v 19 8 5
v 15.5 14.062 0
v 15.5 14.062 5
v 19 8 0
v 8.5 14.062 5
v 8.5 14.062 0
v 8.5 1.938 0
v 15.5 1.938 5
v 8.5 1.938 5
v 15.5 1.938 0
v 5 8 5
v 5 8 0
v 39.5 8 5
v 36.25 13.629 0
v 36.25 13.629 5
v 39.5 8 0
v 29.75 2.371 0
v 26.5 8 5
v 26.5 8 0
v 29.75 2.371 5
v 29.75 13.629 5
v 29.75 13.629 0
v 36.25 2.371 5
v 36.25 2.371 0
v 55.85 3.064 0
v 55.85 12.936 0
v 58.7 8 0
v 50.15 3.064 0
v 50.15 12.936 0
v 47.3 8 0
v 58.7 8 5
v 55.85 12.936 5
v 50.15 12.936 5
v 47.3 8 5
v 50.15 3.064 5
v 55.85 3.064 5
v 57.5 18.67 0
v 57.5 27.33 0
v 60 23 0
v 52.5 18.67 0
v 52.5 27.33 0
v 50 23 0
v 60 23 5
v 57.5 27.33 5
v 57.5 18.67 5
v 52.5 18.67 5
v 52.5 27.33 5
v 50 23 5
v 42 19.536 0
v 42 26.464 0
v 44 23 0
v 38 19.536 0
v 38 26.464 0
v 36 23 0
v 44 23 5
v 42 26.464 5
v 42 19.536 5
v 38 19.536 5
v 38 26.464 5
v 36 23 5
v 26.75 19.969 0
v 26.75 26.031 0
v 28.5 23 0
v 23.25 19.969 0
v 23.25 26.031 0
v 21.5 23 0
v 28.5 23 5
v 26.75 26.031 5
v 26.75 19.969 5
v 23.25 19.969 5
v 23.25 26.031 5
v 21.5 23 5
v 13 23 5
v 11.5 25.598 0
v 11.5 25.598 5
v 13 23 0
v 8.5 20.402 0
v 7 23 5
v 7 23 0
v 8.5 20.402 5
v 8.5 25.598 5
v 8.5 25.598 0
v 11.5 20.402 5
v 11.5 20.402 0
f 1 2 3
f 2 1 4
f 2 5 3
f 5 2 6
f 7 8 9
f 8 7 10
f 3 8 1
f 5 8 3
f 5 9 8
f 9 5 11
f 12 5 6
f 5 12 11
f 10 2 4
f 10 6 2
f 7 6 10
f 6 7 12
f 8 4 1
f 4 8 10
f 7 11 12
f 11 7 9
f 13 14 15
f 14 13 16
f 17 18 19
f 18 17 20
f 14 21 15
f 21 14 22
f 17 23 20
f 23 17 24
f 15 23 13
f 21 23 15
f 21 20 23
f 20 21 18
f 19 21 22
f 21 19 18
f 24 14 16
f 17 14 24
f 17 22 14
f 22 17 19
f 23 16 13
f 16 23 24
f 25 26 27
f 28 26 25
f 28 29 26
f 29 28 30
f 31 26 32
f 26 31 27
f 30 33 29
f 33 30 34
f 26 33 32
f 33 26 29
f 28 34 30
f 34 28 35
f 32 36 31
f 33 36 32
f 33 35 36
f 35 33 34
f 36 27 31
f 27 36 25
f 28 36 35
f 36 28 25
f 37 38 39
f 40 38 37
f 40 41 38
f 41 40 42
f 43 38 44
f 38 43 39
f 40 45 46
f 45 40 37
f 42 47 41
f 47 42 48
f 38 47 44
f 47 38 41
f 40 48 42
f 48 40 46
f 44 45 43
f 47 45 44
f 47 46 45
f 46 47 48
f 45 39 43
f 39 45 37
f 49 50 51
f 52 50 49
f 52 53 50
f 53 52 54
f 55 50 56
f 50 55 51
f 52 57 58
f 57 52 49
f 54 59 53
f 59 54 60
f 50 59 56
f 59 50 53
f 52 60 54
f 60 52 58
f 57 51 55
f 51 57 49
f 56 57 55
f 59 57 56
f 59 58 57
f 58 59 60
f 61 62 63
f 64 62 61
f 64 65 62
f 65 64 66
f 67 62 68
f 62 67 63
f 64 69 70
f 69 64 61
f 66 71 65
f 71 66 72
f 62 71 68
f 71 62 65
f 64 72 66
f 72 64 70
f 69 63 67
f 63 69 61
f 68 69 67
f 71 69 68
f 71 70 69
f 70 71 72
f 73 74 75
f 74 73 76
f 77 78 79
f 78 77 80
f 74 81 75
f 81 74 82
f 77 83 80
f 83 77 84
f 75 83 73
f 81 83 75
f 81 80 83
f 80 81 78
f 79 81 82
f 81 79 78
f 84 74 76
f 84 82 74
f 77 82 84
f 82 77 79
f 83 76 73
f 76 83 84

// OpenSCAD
union() {
  union() {
    union() {
      union() {
        union() {
          union() {
            difference() {
              translate([12.0000000000, 8.0000066667, 2.5000000000]) {
                scale([14.0000000000, 12.1240000000, 5.0000000000]) {
                  rotate([0.0000000000, 0.0000000000, -0.0000000000]) {
                    scale([0.5, 0.577, 1]) cylinder($fn = 6, center = true);
                  }
                }
              }
              /* EMPTY */ sphere(r = 0);
            }
            difference() {
              translate([33.0000000000, 8.0000100000, 2.5000000000]) {
                scale([13.0000000000, 11.2580000000, 5.0000000000]) {
                  rotate([0.0000000000, 0.0000000000, -0.0000000000]) {
                    scale([0.5, 0.577, 1]) cylinder($fn = 6, center = true);
                  }
                }
              }
              /* EMPTY */ sphere(r = 0);
            }
          }
          difference() {
            translate([52.9999680000, 7.9999874480, 2.5000000000]) {
              scale([11.4000000000, 9.8720000000, 5.0000000000]) {
                rotate([0.0000000000, 0.0000000000, -0.0000000000]) {
                  scale([0.5, 0.577, 1]) cylinder($fn = 6, center = true);
                }
              }
            }
            /* EMPTY */ sphere(r = 0);
          }
        }
        difference() {
          translate([55.0000000000, 23.0000000000, 2.5000000000]) {
            scale([10.0000000000, 8.6600000000, 5.0000000000]) {
              rotate([0.0000000000, 0.0000000000, -0.0000000000]) {
                scale([0.5, 0.577, 1]) cylinder($fn = 6, center = true);
              }
            }
          }
          /* EMPTY */ sphere(r = 0);
        }
      }
      difference() {
        translate([40.0000000000, 23.0000000000, 2.5000000000]) {
          scale([8.0000000000, 6.9280000000, 5.0000000000]) {
            rotate([0.0000000000, 0.0000000000, -0.0000000000]) {
              scale([0.5, 0.577, 1]) cylinder($fn = 6, center = true);
            }
          }
        }
        /* EMPTY */ sphere(r = 0);
      }
    }
    difference() {
      translate([25.0000000000, 23.0000000000, 2.5000000000]) {
        scale([7.0000000000, 6.0620000000, 5.0000000000]) {
          rotate([0.0000000000, 0.0000000000, -0.0000000000]) {
            scale([0.5, 0.577, 1]) cylinder($fn = 6, center = true);
          }
        }
      }
      /* EMPTY */ sphere(r = 0);
    }
  }
  difference() {
    translate([10.0000000000, 23.0000000000, 2.5000000000]) {
      scale([6.0000000000, 5.1960000000, 5.0000000000]) {
        rotate([0.0000000000, 0.0000000000, -0.0000000000]) {
          scale([0.5, 0.577, 1]) cylinder($fn = 6, center = true);
        }
      }
    }
    /* EMPTY */ sphere(r = 0);
  }
}
